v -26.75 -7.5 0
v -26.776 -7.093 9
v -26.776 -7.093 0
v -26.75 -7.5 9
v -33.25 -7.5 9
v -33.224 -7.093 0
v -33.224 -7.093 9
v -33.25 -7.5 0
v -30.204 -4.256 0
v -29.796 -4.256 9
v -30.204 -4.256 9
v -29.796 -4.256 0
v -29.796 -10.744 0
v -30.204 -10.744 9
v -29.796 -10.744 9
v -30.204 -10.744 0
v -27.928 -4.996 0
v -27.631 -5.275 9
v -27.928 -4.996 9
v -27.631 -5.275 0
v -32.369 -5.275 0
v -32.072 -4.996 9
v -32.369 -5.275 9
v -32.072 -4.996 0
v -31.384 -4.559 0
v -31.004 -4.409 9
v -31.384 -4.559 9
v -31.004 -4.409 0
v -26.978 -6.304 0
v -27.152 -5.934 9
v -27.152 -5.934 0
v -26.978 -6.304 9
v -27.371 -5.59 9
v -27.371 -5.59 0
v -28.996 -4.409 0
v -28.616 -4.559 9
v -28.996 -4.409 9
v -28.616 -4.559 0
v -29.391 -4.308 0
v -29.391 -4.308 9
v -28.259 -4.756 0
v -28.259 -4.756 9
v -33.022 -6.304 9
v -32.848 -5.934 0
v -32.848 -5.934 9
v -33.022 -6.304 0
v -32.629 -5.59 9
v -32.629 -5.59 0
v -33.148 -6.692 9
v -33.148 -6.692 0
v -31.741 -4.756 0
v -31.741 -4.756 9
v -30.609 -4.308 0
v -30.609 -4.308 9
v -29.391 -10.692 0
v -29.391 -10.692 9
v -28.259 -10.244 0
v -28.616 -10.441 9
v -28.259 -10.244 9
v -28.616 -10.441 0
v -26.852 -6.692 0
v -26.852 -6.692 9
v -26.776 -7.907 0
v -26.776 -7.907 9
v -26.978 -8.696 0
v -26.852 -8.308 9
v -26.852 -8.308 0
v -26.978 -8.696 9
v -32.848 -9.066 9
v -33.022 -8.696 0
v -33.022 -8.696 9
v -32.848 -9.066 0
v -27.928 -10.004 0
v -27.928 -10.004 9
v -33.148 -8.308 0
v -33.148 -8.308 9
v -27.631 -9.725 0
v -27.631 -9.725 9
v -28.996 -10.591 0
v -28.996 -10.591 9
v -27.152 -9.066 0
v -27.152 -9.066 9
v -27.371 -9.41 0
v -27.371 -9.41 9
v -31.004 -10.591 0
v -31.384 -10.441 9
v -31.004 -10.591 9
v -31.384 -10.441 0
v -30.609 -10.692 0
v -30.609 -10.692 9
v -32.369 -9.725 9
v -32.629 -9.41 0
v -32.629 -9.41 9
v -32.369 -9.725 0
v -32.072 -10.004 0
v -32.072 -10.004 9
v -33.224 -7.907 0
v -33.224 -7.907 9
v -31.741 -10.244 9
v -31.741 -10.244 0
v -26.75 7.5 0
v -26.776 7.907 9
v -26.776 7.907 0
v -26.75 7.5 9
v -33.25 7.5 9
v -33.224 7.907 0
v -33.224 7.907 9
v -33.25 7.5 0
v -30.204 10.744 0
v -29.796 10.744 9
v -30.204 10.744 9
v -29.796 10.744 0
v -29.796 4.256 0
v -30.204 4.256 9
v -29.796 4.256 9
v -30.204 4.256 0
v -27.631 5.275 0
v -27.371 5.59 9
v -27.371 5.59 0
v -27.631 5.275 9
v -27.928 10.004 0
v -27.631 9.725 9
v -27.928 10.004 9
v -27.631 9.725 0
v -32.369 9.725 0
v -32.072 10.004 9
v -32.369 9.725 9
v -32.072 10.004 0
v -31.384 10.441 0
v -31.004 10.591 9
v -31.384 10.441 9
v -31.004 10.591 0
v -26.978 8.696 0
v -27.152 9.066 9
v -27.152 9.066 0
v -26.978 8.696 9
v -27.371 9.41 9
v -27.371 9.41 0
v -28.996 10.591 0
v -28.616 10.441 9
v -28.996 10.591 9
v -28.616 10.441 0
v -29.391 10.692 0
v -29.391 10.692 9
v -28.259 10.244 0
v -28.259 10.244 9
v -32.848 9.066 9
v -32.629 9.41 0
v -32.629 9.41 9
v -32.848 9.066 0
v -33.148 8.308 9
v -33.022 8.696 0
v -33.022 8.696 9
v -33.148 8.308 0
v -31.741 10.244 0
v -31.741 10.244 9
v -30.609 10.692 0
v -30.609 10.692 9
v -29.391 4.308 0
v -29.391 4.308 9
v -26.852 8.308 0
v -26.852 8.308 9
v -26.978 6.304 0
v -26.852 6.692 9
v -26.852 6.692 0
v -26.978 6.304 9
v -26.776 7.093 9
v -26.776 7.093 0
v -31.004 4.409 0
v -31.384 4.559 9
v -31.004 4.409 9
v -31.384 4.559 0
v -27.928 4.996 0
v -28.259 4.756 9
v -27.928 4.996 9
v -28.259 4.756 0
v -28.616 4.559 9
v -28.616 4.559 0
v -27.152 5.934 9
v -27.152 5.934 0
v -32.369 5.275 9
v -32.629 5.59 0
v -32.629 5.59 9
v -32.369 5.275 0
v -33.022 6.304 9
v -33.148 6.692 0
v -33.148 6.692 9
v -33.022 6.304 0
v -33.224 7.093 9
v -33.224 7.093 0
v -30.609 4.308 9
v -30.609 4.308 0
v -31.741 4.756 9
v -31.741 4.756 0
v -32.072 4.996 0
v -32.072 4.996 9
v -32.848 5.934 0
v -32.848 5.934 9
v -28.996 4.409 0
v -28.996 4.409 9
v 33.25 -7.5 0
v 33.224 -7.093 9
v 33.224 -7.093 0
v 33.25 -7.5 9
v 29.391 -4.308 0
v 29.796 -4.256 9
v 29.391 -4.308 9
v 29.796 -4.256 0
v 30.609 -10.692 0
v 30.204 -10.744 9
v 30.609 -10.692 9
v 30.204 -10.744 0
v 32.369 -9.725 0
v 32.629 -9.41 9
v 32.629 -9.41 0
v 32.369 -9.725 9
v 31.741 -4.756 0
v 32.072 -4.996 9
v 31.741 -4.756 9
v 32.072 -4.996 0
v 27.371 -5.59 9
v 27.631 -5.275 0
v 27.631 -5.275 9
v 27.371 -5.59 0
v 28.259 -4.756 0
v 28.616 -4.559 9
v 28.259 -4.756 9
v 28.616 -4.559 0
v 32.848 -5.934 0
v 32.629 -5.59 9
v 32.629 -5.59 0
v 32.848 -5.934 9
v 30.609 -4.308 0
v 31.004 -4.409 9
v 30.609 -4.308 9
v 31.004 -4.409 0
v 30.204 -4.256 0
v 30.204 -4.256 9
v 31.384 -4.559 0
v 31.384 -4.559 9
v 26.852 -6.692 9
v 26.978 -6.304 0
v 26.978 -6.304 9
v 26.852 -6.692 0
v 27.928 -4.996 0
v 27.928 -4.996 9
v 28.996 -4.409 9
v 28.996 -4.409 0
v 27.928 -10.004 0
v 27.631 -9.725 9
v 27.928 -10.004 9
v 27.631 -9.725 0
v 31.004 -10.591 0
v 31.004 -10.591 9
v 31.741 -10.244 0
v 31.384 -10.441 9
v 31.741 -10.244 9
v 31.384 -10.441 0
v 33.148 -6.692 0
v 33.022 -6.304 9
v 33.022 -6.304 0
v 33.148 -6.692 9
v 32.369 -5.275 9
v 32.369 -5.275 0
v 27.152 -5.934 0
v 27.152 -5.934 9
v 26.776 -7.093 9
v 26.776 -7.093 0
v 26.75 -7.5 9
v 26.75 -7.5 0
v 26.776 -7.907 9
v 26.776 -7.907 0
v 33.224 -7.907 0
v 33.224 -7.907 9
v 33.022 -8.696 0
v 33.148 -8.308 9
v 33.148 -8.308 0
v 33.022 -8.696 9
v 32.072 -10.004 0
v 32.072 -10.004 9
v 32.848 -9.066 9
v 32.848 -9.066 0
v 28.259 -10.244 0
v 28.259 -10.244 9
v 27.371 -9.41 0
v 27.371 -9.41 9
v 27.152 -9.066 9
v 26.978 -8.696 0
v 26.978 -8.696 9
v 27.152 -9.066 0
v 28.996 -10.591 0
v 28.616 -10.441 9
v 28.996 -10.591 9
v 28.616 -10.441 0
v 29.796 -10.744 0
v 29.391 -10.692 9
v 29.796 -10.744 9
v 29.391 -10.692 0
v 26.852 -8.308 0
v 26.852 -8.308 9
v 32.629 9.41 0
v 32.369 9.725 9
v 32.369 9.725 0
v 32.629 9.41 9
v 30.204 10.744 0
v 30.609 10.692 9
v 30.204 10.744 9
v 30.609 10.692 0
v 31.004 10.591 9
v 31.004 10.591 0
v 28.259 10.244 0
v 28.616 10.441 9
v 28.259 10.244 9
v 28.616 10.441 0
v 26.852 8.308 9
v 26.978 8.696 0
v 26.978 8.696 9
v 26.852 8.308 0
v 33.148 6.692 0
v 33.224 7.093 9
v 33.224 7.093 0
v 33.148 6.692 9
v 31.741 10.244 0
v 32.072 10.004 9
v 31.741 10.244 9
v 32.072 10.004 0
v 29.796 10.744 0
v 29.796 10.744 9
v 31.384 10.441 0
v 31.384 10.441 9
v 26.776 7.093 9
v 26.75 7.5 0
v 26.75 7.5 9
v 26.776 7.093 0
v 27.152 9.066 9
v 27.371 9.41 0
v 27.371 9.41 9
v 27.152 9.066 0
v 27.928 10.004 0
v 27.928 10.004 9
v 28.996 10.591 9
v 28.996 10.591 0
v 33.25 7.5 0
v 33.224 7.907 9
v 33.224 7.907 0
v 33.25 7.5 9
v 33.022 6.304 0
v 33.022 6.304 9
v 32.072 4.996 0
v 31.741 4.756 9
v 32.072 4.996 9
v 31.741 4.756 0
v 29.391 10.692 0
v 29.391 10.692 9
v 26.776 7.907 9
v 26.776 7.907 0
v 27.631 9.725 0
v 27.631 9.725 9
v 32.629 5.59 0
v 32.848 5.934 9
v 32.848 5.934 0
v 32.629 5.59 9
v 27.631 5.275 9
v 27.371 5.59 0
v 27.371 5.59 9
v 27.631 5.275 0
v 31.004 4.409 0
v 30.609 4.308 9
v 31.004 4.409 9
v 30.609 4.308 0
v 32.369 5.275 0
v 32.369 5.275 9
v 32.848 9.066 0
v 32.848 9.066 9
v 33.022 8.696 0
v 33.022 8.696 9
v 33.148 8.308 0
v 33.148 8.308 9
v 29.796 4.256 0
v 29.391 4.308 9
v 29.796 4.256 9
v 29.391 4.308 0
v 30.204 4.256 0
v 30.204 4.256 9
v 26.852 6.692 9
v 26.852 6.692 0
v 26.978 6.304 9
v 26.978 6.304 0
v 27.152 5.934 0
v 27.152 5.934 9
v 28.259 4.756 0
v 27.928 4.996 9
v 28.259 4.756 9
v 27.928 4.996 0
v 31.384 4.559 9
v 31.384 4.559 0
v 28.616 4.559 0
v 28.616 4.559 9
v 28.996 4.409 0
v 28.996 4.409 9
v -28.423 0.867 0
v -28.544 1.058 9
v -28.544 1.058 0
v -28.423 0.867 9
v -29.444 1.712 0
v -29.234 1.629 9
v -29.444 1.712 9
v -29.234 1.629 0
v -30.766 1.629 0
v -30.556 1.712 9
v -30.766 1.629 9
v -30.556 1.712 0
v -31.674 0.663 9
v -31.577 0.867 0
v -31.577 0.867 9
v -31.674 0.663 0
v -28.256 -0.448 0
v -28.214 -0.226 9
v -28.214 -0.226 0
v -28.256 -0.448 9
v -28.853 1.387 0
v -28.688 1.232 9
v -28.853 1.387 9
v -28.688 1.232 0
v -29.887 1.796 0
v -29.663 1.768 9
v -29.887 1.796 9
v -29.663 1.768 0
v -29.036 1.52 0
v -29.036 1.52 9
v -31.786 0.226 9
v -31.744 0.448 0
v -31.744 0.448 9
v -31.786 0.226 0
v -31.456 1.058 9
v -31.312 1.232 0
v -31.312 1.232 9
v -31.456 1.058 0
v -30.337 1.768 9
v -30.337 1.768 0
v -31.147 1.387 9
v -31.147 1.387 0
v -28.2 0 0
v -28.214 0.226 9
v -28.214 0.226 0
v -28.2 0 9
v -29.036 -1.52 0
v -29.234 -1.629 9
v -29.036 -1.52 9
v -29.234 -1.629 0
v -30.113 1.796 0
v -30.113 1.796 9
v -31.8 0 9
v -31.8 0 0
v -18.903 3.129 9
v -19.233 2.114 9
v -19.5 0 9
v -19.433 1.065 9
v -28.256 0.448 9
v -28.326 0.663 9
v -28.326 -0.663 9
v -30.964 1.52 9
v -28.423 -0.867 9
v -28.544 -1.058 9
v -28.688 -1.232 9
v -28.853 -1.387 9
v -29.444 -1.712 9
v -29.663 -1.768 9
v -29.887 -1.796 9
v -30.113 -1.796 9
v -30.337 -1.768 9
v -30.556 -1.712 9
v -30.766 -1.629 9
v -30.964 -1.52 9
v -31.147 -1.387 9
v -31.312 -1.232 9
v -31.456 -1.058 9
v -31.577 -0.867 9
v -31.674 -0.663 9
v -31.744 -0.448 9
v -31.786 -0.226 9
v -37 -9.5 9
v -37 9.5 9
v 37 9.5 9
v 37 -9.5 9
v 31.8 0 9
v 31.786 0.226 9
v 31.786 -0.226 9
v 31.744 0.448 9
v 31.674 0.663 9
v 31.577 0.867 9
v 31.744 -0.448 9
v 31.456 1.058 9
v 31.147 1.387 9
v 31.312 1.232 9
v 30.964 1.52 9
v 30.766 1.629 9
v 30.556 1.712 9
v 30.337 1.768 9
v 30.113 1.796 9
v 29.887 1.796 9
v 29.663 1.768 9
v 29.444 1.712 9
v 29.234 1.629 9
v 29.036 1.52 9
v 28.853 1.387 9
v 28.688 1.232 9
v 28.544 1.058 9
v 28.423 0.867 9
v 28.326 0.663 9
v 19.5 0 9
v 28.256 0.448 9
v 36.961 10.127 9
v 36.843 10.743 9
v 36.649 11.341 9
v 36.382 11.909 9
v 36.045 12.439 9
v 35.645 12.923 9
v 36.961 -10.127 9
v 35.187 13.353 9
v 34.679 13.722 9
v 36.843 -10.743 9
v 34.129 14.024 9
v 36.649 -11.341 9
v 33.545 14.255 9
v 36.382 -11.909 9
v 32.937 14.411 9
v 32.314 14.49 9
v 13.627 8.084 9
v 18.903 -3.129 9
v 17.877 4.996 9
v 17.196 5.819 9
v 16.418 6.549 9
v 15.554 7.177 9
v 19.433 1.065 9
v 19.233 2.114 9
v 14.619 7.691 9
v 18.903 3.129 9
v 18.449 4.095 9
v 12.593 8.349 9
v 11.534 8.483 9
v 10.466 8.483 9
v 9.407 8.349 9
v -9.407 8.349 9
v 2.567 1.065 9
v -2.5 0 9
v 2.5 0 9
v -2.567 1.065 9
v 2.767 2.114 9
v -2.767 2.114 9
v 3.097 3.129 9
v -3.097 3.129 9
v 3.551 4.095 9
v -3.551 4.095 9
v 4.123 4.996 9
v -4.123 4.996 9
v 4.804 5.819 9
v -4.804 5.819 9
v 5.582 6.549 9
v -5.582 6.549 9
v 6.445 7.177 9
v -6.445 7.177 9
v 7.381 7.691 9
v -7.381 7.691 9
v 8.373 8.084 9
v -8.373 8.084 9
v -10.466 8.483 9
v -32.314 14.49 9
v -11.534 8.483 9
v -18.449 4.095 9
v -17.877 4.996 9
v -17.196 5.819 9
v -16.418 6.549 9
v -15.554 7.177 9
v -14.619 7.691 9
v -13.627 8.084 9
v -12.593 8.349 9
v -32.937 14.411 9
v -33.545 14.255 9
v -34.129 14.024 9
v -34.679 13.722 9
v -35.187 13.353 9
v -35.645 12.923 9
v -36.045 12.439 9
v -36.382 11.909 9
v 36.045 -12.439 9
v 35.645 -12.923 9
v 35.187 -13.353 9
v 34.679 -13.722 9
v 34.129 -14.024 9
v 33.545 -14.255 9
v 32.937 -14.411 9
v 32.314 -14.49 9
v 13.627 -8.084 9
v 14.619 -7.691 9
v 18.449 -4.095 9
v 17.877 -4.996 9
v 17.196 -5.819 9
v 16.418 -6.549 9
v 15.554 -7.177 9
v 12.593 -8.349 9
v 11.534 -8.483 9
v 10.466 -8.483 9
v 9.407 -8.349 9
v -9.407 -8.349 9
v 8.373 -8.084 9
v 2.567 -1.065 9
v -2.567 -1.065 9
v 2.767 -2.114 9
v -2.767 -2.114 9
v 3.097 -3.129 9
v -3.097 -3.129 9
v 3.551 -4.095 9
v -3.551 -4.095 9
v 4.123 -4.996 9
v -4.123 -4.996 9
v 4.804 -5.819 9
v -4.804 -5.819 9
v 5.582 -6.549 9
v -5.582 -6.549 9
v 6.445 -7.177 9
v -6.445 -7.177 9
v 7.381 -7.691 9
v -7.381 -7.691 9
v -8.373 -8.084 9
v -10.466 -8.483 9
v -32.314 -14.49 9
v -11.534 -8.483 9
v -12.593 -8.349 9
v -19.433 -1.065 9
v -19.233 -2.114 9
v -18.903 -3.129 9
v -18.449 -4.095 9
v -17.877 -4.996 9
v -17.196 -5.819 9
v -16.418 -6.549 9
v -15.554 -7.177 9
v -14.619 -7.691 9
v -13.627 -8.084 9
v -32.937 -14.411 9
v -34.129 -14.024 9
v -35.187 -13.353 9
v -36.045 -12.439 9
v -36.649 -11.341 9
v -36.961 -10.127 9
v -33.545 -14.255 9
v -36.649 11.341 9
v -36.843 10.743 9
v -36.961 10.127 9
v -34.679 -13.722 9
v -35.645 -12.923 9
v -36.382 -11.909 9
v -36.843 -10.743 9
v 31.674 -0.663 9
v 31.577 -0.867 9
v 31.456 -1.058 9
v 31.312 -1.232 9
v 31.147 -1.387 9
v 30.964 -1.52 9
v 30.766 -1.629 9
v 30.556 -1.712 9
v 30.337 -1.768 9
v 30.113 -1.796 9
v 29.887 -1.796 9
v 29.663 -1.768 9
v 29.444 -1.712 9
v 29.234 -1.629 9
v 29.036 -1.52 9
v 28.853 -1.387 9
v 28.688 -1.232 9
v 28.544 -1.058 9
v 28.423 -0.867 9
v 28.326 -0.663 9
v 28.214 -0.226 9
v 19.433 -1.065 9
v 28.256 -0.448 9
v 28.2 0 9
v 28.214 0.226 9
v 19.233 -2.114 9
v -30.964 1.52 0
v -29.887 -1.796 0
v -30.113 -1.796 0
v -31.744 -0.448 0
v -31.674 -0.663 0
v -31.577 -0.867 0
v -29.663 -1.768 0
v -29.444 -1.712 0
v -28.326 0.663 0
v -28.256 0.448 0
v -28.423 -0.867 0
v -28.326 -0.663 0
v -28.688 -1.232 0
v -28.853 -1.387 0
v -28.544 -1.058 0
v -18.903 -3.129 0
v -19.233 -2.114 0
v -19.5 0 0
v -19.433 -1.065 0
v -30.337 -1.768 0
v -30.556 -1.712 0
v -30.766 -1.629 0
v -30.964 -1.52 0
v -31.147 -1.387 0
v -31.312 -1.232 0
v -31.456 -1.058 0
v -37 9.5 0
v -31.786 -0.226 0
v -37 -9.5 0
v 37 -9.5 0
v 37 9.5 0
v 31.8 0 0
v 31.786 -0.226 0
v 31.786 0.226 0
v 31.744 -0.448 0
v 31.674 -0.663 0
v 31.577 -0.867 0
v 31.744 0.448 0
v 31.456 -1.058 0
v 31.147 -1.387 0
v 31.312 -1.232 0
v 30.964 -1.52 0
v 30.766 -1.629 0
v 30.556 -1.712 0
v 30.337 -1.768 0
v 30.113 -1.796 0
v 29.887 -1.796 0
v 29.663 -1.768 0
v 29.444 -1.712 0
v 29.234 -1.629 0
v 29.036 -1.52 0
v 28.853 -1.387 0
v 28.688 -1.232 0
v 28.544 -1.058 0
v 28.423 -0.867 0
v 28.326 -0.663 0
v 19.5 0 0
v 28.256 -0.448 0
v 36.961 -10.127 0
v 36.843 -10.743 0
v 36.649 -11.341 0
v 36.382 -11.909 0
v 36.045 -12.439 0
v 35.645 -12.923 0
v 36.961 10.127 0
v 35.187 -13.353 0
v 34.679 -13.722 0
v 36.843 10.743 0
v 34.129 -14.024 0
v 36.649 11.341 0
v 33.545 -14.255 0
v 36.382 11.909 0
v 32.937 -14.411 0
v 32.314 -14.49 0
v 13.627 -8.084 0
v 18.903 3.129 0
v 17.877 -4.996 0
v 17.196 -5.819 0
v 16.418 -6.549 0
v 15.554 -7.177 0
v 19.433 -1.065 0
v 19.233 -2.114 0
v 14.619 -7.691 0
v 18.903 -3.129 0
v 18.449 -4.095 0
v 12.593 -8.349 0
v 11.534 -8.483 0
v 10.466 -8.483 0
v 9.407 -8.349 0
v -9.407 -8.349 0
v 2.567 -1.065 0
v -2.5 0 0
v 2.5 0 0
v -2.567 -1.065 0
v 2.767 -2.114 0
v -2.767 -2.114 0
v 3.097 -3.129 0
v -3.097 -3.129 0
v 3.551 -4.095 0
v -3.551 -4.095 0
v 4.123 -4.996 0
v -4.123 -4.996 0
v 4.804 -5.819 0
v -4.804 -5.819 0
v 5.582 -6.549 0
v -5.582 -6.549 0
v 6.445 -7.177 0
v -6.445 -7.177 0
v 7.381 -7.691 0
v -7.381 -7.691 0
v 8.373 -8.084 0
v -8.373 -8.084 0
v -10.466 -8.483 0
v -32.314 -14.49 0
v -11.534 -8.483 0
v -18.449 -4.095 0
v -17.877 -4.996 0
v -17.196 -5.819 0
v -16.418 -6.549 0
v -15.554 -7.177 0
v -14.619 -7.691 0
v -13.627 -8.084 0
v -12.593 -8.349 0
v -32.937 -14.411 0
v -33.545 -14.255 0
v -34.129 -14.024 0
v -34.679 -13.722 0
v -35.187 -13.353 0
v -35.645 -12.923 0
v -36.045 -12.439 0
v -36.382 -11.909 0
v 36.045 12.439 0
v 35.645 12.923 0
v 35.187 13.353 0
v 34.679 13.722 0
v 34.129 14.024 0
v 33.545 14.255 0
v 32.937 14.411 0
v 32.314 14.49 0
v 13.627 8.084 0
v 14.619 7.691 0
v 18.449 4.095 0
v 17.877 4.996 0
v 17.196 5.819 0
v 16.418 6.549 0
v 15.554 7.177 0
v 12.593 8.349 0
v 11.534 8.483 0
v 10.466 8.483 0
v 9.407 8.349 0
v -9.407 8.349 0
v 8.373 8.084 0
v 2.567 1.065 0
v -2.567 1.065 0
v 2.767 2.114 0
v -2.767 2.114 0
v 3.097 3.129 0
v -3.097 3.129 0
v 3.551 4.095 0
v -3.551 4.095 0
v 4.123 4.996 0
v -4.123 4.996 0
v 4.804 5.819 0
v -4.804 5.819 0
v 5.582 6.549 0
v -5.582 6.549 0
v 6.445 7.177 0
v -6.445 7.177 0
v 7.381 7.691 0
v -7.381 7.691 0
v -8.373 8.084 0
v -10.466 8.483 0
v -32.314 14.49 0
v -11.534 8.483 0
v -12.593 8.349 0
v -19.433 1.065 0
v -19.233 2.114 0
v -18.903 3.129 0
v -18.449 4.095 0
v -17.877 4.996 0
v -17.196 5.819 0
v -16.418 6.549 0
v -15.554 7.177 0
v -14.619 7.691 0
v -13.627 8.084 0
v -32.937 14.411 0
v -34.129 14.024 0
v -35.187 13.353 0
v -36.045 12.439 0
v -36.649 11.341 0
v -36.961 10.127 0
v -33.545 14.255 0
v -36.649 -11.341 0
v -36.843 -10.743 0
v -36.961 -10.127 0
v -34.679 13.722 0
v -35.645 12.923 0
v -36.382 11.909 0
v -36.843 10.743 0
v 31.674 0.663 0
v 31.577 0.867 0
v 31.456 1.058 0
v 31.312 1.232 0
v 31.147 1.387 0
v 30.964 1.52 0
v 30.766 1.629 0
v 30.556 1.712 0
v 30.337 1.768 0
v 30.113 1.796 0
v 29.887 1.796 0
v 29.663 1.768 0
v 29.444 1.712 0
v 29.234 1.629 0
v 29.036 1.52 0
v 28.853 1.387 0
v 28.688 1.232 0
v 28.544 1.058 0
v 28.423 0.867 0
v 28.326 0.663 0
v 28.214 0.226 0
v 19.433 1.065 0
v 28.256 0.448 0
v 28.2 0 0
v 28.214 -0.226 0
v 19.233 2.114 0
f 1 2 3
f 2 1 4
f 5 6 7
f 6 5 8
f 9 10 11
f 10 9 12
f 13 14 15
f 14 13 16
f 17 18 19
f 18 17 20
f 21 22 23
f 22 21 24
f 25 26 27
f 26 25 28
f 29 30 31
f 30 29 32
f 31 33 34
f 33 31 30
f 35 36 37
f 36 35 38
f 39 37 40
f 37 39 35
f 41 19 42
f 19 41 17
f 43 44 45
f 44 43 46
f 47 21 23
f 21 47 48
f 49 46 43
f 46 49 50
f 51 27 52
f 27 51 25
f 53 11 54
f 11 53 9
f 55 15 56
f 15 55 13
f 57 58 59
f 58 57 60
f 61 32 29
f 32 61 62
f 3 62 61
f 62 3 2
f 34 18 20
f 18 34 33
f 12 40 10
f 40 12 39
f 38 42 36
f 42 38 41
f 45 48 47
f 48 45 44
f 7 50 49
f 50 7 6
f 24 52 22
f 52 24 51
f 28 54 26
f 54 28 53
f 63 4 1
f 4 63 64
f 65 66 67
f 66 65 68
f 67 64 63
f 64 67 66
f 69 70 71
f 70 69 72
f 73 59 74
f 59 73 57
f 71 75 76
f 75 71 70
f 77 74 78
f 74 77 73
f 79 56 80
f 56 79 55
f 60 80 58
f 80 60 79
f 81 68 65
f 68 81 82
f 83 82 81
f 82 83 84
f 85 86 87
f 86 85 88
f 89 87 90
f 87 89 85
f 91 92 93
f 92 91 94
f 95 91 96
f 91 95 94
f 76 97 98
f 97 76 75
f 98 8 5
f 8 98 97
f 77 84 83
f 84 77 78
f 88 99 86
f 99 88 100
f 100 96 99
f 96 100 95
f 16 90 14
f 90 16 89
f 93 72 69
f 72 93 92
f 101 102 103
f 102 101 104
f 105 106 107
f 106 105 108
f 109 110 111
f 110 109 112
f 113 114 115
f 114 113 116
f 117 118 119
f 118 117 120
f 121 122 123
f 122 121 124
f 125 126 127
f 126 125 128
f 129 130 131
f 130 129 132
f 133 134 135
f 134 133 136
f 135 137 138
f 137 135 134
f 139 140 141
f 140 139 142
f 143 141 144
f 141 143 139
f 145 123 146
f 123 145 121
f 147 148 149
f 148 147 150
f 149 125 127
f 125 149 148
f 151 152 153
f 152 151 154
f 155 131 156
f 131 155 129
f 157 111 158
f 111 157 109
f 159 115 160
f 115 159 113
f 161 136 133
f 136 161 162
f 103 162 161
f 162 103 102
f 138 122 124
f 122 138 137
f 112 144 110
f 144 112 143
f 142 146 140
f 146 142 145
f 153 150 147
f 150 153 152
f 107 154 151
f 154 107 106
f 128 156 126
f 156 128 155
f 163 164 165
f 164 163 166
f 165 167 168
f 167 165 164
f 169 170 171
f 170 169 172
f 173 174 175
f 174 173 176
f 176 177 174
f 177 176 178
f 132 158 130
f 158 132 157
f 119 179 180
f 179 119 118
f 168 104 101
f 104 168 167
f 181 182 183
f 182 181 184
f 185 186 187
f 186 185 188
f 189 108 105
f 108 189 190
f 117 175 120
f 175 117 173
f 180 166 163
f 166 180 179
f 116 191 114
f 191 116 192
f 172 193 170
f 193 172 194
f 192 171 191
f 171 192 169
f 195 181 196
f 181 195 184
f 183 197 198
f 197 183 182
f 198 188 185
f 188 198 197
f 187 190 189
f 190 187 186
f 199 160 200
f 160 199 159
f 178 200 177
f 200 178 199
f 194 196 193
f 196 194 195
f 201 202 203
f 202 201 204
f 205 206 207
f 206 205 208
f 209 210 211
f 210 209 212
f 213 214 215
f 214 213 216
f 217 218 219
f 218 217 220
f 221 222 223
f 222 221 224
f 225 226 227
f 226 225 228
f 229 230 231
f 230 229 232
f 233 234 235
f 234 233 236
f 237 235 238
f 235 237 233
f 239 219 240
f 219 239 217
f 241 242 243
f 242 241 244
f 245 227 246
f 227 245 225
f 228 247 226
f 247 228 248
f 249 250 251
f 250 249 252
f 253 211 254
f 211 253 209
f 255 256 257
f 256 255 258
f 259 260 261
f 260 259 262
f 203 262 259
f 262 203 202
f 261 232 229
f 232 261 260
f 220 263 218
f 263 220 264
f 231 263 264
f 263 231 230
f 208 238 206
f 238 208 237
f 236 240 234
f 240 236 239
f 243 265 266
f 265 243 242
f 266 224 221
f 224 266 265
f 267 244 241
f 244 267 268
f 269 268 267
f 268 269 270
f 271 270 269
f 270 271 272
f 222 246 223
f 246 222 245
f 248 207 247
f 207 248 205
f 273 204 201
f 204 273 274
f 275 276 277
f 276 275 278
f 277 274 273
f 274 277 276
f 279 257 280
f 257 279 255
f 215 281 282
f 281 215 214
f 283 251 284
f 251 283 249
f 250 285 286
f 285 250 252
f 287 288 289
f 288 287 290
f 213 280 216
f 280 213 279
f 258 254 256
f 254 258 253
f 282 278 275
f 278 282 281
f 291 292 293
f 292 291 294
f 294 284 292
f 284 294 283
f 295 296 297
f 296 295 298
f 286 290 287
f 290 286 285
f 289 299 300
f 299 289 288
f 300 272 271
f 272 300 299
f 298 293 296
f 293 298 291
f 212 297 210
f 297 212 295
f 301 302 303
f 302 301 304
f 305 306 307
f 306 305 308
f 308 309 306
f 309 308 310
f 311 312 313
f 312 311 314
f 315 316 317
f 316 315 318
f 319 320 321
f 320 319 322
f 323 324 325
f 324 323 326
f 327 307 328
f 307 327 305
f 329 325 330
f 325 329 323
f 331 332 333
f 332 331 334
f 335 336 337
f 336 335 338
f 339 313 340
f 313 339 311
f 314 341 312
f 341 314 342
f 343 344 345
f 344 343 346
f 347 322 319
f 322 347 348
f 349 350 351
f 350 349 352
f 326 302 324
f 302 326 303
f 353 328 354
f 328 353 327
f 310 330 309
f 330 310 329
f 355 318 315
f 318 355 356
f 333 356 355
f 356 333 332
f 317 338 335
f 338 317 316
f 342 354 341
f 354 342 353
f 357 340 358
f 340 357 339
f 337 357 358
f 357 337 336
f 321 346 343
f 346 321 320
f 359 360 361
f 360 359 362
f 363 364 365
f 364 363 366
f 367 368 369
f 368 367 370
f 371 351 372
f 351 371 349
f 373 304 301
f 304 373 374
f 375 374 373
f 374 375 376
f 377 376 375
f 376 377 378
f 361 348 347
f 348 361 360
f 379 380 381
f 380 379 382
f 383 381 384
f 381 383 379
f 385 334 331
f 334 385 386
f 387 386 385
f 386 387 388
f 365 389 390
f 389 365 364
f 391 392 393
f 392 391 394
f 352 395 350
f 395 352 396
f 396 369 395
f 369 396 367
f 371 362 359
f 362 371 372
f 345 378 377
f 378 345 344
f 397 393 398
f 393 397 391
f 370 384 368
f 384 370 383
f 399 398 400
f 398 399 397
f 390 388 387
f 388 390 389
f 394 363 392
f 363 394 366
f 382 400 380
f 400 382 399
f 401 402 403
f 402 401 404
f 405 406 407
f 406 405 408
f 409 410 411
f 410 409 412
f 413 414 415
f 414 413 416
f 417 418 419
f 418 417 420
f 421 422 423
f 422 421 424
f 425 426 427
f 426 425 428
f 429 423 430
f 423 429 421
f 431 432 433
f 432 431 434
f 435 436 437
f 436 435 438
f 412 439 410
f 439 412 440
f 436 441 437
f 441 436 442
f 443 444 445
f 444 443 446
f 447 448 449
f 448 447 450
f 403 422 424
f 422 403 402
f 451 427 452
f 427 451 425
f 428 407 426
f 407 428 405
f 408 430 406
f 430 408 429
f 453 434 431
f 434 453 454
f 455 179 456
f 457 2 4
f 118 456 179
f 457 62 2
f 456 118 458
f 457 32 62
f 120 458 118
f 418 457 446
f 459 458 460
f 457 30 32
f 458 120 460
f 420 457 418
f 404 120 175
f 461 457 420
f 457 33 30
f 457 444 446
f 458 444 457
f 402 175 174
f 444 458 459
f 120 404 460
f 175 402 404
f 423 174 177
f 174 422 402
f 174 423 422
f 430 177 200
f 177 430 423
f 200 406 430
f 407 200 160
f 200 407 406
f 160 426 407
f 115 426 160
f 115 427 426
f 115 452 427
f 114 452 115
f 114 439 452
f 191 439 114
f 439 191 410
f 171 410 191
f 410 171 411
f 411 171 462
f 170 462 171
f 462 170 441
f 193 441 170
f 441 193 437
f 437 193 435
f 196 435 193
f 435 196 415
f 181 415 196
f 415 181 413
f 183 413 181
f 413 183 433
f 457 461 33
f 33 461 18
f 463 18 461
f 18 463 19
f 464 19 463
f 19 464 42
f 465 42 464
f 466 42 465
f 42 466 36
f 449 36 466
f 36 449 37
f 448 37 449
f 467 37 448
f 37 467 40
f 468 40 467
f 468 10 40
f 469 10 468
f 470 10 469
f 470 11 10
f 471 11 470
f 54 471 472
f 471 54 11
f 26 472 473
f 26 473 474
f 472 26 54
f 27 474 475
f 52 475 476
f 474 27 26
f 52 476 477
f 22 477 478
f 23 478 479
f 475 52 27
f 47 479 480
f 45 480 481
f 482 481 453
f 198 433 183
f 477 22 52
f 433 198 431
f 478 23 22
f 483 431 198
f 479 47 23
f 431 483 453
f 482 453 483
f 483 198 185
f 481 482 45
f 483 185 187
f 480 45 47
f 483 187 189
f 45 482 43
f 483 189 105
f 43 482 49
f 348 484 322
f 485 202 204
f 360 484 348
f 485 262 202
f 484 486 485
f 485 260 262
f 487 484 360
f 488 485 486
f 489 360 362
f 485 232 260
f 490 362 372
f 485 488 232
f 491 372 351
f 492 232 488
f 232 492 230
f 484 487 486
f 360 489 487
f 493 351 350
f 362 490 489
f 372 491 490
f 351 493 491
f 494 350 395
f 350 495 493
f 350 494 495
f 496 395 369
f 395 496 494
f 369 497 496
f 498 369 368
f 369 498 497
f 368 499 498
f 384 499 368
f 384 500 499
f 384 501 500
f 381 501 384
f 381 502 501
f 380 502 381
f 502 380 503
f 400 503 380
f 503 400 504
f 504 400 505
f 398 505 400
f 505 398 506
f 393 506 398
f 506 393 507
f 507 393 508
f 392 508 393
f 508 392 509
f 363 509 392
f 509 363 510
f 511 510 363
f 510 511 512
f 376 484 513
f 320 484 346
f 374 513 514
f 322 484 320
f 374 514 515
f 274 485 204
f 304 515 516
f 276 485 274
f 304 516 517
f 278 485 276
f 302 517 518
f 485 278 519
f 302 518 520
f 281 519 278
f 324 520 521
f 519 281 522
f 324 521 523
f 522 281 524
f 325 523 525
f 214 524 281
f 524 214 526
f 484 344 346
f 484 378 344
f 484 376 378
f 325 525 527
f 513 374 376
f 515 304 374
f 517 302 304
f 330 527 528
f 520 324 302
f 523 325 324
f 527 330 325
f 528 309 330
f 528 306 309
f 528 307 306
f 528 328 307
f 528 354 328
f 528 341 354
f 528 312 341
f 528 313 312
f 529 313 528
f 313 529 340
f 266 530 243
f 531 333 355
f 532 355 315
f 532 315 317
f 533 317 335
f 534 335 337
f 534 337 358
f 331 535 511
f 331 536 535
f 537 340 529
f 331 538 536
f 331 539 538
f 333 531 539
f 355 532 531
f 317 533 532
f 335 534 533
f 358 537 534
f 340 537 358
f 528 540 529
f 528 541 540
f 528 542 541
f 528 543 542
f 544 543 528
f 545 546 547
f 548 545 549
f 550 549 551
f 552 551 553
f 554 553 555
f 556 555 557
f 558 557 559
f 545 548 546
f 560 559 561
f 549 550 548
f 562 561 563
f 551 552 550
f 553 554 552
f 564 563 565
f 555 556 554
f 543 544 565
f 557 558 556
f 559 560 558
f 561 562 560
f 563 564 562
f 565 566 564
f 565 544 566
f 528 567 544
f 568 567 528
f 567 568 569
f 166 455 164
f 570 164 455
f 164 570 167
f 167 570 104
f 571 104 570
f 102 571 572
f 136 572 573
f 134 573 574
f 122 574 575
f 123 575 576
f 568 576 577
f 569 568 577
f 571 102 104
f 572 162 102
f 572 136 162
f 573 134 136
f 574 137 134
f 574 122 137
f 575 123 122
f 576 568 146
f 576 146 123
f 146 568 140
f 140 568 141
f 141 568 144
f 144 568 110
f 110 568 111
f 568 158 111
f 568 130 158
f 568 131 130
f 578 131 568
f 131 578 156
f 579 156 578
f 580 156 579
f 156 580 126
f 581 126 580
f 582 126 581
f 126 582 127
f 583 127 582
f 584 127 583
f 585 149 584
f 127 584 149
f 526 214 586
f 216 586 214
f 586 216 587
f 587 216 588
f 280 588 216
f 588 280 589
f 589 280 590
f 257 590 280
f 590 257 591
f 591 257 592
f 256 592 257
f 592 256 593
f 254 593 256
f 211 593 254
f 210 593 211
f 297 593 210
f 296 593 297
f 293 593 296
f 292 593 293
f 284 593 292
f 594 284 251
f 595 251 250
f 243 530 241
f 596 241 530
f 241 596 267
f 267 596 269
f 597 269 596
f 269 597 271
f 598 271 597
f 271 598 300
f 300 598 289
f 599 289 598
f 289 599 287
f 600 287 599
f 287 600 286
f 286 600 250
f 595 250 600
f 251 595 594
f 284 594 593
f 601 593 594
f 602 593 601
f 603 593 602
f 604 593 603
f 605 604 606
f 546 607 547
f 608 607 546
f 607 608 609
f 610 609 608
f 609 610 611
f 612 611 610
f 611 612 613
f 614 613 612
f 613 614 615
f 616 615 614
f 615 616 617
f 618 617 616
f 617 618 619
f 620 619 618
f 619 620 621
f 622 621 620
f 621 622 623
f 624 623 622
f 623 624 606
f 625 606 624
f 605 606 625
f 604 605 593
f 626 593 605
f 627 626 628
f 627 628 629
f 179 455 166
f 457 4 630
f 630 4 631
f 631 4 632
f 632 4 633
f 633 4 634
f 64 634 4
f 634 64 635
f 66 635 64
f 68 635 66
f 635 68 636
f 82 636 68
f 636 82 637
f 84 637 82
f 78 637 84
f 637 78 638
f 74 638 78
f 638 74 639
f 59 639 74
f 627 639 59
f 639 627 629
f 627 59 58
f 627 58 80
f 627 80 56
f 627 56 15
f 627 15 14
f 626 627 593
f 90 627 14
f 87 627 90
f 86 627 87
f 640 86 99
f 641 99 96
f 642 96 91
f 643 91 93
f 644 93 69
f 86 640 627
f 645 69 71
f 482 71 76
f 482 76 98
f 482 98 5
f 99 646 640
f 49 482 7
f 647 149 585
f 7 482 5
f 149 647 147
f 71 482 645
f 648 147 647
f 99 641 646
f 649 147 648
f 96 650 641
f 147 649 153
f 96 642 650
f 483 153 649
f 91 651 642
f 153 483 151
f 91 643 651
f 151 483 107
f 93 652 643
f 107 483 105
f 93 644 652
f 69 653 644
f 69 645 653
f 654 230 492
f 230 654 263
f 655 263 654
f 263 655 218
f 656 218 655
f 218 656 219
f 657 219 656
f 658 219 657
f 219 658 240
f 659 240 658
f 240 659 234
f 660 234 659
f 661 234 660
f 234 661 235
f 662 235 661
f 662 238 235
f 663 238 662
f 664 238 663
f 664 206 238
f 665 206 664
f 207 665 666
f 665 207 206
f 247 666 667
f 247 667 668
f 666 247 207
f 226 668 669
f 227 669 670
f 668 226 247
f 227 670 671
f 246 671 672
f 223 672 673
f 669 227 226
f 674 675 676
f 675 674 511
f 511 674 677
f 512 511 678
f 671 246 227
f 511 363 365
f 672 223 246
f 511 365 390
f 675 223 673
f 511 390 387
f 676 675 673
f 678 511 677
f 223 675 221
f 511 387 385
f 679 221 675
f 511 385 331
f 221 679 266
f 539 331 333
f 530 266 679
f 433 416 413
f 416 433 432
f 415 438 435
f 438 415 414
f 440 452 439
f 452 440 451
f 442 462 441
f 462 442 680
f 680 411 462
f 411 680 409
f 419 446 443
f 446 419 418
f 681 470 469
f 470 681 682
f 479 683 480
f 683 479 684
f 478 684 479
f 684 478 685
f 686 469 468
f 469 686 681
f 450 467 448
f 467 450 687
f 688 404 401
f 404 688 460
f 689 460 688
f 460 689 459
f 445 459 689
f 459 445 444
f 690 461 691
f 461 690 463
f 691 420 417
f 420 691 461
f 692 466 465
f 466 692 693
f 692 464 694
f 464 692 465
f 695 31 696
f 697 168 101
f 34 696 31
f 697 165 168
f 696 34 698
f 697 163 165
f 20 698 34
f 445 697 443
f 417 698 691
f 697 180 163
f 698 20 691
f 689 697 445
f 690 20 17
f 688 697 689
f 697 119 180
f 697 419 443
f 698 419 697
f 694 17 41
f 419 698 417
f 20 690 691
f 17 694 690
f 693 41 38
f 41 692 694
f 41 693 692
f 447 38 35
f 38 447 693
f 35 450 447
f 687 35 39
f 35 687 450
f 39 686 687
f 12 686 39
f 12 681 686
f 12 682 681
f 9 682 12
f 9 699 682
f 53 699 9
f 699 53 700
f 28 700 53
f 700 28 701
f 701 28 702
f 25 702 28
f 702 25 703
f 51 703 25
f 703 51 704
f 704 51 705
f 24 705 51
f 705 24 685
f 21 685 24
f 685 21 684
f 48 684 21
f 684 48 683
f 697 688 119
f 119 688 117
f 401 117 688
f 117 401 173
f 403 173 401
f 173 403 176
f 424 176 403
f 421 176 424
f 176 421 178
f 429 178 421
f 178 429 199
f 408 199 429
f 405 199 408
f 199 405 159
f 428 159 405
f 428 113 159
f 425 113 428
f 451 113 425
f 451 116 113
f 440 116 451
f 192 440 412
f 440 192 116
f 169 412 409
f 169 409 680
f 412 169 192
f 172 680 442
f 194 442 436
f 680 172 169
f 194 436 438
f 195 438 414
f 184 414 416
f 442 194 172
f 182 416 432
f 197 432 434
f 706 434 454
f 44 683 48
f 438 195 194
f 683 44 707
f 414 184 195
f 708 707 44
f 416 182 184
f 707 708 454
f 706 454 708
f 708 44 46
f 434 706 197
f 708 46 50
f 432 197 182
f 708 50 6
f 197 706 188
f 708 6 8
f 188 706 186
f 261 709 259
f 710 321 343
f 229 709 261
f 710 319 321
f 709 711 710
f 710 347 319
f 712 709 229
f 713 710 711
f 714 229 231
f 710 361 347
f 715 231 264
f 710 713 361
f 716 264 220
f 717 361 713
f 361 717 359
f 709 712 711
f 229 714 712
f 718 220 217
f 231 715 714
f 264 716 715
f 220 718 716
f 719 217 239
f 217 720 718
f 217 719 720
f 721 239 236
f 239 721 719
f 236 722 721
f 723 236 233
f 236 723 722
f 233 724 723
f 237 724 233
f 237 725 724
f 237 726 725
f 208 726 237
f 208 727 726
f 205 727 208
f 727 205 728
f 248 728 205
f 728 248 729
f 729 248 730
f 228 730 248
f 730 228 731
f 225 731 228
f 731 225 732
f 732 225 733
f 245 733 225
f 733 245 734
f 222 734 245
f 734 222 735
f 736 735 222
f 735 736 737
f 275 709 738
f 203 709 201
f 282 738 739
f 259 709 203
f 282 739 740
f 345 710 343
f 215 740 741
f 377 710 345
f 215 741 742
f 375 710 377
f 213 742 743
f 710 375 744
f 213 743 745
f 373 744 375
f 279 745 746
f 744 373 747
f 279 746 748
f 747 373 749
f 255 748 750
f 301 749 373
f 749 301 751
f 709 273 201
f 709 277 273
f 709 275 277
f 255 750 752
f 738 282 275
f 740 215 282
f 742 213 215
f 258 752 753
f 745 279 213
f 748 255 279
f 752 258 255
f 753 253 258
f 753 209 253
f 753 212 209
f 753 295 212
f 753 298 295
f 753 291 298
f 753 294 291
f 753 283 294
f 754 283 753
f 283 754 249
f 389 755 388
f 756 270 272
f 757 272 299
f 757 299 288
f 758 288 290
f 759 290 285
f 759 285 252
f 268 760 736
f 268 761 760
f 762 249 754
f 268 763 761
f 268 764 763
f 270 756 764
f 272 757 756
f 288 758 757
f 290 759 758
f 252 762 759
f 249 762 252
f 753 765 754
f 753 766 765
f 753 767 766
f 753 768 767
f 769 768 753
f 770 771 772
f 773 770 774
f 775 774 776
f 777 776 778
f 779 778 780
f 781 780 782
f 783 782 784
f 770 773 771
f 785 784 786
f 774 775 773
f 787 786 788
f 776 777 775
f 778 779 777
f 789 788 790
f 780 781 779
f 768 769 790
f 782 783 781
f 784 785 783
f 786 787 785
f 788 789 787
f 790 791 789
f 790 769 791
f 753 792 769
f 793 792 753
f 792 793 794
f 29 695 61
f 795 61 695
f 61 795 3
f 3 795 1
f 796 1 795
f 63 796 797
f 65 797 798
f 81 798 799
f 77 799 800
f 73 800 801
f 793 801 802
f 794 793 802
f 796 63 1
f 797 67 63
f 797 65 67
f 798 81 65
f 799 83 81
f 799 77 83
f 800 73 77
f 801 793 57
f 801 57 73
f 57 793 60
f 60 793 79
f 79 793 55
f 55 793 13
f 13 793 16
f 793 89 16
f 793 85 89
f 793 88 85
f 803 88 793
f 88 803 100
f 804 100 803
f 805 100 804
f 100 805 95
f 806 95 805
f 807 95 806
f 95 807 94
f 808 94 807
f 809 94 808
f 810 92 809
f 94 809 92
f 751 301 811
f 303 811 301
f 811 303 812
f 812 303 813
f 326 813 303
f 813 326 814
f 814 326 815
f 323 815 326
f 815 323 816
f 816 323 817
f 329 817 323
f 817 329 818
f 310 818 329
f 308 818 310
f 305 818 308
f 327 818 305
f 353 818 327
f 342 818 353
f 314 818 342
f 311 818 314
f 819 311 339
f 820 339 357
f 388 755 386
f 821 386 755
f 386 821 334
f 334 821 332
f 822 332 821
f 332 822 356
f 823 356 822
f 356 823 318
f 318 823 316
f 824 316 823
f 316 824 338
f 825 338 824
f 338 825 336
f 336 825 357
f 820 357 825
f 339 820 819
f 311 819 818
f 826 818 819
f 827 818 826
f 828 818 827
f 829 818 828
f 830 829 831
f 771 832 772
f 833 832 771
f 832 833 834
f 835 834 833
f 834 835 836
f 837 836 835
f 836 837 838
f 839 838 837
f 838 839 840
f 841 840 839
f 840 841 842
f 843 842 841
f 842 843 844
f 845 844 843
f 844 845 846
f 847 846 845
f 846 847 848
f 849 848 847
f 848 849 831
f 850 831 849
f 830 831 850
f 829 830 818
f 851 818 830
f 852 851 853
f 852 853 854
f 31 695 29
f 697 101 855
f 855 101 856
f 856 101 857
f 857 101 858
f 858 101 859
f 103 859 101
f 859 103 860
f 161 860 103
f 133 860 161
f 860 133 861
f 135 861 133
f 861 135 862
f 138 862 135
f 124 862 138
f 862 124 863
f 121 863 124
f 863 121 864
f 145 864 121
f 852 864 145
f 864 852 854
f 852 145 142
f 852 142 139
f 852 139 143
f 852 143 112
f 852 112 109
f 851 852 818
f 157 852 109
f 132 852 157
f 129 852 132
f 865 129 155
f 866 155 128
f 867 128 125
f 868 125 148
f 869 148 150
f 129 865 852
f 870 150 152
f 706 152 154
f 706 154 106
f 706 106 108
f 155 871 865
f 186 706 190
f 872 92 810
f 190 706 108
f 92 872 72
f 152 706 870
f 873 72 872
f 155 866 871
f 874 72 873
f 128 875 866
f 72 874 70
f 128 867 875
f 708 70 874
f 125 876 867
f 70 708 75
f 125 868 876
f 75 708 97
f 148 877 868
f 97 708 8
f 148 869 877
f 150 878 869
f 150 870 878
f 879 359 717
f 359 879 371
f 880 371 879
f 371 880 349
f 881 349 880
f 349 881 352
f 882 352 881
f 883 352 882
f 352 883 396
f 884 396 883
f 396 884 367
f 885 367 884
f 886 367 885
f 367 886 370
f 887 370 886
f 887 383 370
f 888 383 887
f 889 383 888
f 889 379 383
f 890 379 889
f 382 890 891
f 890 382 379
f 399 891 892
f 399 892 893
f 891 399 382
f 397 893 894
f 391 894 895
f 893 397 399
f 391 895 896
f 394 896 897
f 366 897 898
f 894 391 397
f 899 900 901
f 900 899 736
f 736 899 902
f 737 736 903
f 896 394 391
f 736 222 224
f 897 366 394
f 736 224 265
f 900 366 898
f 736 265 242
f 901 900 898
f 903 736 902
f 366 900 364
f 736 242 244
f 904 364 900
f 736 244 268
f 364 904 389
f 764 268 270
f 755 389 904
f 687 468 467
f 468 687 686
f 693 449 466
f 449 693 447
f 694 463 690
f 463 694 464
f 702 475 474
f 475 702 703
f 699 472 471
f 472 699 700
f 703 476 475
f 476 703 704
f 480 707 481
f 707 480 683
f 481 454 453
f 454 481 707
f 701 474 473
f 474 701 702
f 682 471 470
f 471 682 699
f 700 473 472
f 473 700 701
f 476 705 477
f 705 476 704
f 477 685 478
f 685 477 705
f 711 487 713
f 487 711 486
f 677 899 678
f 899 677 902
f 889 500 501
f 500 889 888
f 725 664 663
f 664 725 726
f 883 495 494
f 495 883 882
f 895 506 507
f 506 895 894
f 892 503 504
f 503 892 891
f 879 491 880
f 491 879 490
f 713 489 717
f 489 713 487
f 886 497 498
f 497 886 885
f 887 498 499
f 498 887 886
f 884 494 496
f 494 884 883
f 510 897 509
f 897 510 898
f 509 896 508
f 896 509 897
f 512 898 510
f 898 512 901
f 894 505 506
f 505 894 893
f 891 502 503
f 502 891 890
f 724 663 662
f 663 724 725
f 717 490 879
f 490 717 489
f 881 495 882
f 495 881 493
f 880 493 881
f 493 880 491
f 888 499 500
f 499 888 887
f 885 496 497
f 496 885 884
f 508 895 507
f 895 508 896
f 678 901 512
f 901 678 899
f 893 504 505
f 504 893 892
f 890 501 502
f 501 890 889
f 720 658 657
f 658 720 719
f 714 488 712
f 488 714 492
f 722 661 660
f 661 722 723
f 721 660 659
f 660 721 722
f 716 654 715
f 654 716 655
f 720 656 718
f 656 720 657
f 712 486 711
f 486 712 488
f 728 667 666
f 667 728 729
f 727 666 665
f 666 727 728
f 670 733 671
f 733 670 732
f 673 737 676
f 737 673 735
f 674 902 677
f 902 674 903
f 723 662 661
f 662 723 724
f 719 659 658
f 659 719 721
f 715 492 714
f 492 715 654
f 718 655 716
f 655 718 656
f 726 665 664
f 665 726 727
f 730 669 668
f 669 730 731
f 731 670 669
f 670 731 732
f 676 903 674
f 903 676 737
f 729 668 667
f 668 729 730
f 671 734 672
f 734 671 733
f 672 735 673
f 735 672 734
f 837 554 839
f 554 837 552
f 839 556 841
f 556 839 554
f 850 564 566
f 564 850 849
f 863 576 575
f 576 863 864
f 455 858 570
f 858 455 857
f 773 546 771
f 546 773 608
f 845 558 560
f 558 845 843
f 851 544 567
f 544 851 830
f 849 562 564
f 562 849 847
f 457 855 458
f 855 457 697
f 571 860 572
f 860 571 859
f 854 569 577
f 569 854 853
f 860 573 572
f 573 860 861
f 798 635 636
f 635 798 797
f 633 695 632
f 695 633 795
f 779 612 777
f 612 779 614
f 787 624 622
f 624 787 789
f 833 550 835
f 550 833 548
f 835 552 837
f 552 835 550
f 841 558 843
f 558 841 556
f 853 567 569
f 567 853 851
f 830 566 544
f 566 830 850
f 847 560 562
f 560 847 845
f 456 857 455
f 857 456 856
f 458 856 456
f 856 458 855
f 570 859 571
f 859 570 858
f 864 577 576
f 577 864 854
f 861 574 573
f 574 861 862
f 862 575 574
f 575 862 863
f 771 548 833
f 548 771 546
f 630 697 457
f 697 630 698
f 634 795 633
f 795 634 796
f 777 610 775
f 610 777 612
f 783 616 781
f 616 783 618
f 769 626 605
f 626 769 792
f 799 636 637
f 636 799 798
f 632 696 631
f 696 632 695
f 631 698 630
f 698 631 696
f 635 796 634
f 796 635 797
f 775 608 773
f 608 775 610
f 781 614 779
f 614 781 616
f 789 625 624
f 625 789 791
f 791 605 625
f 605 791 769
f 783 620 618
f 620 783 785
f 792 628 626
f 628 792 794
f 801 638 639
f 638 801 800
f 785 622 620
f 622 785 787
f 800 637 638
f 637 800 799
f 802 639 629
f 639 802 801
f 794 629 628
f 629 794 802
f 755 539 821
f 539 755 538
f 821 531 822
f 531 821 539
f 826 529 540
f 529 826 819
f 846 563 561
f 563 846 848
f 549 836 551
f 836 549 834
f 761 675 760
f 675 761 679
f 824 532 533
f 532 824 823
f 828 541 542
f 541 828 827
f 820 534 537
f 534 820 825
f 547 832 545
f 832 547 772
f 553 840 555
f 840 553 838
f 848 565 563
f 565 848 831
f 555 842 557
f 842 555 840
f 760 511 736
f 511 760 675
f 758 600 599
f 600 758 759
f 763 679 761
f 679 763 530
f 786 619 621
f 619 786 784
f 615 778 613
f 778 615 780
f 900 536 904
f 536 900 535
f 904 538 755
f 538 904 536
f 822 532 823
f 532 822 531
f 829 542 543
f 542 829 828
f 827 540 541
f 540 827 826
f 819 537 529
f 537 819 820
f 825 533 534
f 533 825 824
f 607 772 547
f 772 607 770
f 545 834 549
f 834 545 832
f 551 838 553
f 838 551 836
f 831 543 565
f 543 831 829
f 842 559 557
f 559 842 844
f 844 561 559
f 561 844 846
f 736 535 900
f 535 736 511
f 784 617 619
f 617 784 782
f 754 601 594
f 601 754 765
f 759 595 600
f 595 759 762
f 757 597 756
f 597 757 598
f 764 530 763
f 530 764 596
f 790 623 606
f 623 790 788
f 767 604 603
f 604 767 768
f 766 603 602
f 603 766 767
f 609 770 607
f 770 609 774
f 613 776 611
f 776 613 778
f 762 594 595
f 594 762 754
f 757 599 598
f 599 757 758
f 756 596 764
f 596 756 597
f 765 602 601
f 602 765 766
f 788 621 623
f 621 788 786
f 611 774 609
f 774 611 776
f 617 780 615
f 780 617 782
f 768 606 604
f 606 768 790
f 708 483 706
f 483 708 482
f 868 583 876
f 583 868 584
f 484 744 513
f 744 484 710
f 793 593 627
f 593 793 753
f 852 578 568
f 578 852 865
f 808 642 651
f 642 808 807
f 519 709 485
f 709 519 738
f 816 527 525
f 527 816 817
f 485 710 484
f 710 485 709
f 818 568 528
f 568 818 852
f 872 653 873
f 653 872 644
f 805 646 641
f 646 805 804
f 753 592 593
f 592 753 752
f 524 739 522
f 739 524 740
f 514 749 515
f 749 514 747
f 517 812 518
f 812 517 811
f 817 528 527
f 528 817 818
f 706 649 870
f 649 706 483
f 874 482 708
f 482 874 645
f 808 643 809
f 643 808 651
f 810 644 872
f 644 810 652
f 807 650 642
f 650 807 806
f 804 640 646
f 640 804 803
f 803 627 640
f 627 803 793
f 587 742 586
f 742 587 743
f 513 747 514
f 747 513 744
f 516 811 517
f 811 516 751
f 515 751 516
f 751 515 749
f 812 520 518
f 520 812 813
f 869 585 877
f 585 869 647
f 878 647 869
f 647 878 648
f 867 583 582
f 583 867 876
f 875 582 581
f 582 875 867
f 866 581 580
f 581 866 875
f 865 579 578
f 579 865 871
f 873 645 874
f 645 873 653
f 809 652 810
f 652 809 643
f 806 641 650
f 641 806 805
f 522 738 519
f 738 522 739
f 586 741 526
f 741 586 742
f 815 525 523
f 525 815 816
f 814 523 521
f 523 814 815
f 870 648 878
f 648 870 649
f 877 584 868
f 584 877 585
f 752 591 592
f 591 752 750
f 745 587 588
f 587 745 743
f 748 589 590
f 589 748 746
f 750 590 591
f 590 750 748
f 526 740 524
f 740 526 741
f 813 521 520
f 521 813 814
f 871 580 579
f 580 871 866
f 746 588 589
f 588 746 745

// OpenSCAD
$fn = 50;


difference() {
	union() {
		hull() {
			translate(v = [-32.0000000000, 9.5000000000, 0]) {
				cylinder(h = 9, r = 5);
			}
			translate(v = [32.0000000000, 9.5000000000, 0]) {
				cylinder(h = 9, r = 5);
			}
			translate(v = [-32.0000000000, -9.5000000000, 0]) {
				cylinder(h = 9, r = 5);
			}
			translate(v = [32.0000000000, -9.5000000000, 0]) {
				cylinder(h = 9, r = 5);
			}
		}
	}
	union() {
		#translate(v = [-30.0000000000, -7.5000000000, 0]) {
			cylinder(h = 9, r = 3.2500000000);
		}
		#translate(v = [-30.0000000000, 7.5000000000, 0]) {
			cylinder(h = 9, r = 3.2500000000);
		}
		#translate(v = [30.0000000000, -7.5000000000, 0]) {
			cylinder(h = 9, r = 3.2500000000);
		}
		#translate(v = [30.0000000000, 7.5000000000, 0]) {
			cylinder(h = 9, r = 3.2500000000);
		}
		#translate(v = [-30.0000000000, -7.5000000000, -100.0000000000]) {
			cylinder(h = 200, r = 3.2500000000);
		}
		#translate(v = [-30.0000000000, 7.5000000000, -100.0000000000]) {
			cylinder(h = 200, r = 3.2500000000);
		}
		#translate(v = [30.0000000000, -7.5000000000, -100.0000000000]) {
			cylinder(h = 200, r = 3.2500000000);
		}
		#translate(v = [30.0000000000, 7.5000000000, -100.0000000000]) {
			cylinder(h = 200, r = 3.2500000000);
		}
		#translate(v = [-30.0000000000, -7.5000000000, 0]) {
			cylinder(h = 9, r = 1.8000000000);
		}
		#translate(v = [-30.0000000000, 0.0000000000, 0]) {
			cylinder(h = 9, r = 1.8000000000);
		}
		#translate(v = [-30.0000000000, 7.5000000000, 0]) {
			cylinder(h = 9, r = 1.8000000000);
		}
		#translate(v = [30.0000000000, -7.5000000000, 0]) {
			cylinder(h = 9, r = 1.8000000000);
		}
		#translate(v = [30.0000000000, 0.0000000000, 0]) {
			cylinder(h = 9, r = 1.8000000000);
		}
		#translate(v = [30.0000000000, 7.5000000000, 0]) {
			cylinder(h = 9, r = 1.8000000000);
		}
		#translate(v = [-30.0000000000, -7.5000000000, 0]) {
			cylinder(h = 9, r = 1.8000000000);
		}
		#translate(v = [-30.0000000000, 0.0000000000, 0]) {
			cylinder(h = 9, r = 1.8000000000);
		}
		#translate(v = [-30.0000000000, 7.5000000000, 0]) {
			cylinder(h = 9, r = 1.8000000000);
		}
		#translate(v = [30.0000000000, -7.5000000000, 0]) {
			cylinder(h = 9, r = 1.8000000000);
		}
		#translate(v = [30.0000000000, 0.0000000000, 0]) {
			cylinder(h = 9, r = 1.8000000000);
		}
		#translate(v = [30.0000000000, 7.5000000000, 0]) {
			cylinder(h = 9, r = 1.8000000000);
		}
		#translate(v = [-30.0000000000, -7.5000000000, 0]) {
			cylinder(h = 9, r = 1.8000000000);
		}
		#translate(v = [-30.0000000000, 0.0000000000, 0]) {
			cylinder(h = 9, r = 1.8000000000);
		}
		#translate(v = [-30.0000000000, 7.5000000000, 0]) {
			cylinder(h = 9, r = 1.8000000000);
		}
		#translate(v = [30.0000000000, -7.5000000000, 0]) {
			cylinder(h = 9, r = 1.8000000000);
		}
		#translate(v = [30.0000000000, 0.0000000000, 0]) {
			cylinder(h = 9, r = 1.8000000000);
		}
		#translate(v = [30.0000000000, 7.5000000000, 0]) {
			cylinder(h = 9, r = 1.8000000000);
		}
		#translate(v = [-11.0000000000, 0, 0]) {
			cylinder(h = 9, r = 8.5000000000);
		}
		#translate(v = [11.0000000000, 0, 0]) {
			cylinder(h = 9, r = 8.5000000000);
		}
	}
}
